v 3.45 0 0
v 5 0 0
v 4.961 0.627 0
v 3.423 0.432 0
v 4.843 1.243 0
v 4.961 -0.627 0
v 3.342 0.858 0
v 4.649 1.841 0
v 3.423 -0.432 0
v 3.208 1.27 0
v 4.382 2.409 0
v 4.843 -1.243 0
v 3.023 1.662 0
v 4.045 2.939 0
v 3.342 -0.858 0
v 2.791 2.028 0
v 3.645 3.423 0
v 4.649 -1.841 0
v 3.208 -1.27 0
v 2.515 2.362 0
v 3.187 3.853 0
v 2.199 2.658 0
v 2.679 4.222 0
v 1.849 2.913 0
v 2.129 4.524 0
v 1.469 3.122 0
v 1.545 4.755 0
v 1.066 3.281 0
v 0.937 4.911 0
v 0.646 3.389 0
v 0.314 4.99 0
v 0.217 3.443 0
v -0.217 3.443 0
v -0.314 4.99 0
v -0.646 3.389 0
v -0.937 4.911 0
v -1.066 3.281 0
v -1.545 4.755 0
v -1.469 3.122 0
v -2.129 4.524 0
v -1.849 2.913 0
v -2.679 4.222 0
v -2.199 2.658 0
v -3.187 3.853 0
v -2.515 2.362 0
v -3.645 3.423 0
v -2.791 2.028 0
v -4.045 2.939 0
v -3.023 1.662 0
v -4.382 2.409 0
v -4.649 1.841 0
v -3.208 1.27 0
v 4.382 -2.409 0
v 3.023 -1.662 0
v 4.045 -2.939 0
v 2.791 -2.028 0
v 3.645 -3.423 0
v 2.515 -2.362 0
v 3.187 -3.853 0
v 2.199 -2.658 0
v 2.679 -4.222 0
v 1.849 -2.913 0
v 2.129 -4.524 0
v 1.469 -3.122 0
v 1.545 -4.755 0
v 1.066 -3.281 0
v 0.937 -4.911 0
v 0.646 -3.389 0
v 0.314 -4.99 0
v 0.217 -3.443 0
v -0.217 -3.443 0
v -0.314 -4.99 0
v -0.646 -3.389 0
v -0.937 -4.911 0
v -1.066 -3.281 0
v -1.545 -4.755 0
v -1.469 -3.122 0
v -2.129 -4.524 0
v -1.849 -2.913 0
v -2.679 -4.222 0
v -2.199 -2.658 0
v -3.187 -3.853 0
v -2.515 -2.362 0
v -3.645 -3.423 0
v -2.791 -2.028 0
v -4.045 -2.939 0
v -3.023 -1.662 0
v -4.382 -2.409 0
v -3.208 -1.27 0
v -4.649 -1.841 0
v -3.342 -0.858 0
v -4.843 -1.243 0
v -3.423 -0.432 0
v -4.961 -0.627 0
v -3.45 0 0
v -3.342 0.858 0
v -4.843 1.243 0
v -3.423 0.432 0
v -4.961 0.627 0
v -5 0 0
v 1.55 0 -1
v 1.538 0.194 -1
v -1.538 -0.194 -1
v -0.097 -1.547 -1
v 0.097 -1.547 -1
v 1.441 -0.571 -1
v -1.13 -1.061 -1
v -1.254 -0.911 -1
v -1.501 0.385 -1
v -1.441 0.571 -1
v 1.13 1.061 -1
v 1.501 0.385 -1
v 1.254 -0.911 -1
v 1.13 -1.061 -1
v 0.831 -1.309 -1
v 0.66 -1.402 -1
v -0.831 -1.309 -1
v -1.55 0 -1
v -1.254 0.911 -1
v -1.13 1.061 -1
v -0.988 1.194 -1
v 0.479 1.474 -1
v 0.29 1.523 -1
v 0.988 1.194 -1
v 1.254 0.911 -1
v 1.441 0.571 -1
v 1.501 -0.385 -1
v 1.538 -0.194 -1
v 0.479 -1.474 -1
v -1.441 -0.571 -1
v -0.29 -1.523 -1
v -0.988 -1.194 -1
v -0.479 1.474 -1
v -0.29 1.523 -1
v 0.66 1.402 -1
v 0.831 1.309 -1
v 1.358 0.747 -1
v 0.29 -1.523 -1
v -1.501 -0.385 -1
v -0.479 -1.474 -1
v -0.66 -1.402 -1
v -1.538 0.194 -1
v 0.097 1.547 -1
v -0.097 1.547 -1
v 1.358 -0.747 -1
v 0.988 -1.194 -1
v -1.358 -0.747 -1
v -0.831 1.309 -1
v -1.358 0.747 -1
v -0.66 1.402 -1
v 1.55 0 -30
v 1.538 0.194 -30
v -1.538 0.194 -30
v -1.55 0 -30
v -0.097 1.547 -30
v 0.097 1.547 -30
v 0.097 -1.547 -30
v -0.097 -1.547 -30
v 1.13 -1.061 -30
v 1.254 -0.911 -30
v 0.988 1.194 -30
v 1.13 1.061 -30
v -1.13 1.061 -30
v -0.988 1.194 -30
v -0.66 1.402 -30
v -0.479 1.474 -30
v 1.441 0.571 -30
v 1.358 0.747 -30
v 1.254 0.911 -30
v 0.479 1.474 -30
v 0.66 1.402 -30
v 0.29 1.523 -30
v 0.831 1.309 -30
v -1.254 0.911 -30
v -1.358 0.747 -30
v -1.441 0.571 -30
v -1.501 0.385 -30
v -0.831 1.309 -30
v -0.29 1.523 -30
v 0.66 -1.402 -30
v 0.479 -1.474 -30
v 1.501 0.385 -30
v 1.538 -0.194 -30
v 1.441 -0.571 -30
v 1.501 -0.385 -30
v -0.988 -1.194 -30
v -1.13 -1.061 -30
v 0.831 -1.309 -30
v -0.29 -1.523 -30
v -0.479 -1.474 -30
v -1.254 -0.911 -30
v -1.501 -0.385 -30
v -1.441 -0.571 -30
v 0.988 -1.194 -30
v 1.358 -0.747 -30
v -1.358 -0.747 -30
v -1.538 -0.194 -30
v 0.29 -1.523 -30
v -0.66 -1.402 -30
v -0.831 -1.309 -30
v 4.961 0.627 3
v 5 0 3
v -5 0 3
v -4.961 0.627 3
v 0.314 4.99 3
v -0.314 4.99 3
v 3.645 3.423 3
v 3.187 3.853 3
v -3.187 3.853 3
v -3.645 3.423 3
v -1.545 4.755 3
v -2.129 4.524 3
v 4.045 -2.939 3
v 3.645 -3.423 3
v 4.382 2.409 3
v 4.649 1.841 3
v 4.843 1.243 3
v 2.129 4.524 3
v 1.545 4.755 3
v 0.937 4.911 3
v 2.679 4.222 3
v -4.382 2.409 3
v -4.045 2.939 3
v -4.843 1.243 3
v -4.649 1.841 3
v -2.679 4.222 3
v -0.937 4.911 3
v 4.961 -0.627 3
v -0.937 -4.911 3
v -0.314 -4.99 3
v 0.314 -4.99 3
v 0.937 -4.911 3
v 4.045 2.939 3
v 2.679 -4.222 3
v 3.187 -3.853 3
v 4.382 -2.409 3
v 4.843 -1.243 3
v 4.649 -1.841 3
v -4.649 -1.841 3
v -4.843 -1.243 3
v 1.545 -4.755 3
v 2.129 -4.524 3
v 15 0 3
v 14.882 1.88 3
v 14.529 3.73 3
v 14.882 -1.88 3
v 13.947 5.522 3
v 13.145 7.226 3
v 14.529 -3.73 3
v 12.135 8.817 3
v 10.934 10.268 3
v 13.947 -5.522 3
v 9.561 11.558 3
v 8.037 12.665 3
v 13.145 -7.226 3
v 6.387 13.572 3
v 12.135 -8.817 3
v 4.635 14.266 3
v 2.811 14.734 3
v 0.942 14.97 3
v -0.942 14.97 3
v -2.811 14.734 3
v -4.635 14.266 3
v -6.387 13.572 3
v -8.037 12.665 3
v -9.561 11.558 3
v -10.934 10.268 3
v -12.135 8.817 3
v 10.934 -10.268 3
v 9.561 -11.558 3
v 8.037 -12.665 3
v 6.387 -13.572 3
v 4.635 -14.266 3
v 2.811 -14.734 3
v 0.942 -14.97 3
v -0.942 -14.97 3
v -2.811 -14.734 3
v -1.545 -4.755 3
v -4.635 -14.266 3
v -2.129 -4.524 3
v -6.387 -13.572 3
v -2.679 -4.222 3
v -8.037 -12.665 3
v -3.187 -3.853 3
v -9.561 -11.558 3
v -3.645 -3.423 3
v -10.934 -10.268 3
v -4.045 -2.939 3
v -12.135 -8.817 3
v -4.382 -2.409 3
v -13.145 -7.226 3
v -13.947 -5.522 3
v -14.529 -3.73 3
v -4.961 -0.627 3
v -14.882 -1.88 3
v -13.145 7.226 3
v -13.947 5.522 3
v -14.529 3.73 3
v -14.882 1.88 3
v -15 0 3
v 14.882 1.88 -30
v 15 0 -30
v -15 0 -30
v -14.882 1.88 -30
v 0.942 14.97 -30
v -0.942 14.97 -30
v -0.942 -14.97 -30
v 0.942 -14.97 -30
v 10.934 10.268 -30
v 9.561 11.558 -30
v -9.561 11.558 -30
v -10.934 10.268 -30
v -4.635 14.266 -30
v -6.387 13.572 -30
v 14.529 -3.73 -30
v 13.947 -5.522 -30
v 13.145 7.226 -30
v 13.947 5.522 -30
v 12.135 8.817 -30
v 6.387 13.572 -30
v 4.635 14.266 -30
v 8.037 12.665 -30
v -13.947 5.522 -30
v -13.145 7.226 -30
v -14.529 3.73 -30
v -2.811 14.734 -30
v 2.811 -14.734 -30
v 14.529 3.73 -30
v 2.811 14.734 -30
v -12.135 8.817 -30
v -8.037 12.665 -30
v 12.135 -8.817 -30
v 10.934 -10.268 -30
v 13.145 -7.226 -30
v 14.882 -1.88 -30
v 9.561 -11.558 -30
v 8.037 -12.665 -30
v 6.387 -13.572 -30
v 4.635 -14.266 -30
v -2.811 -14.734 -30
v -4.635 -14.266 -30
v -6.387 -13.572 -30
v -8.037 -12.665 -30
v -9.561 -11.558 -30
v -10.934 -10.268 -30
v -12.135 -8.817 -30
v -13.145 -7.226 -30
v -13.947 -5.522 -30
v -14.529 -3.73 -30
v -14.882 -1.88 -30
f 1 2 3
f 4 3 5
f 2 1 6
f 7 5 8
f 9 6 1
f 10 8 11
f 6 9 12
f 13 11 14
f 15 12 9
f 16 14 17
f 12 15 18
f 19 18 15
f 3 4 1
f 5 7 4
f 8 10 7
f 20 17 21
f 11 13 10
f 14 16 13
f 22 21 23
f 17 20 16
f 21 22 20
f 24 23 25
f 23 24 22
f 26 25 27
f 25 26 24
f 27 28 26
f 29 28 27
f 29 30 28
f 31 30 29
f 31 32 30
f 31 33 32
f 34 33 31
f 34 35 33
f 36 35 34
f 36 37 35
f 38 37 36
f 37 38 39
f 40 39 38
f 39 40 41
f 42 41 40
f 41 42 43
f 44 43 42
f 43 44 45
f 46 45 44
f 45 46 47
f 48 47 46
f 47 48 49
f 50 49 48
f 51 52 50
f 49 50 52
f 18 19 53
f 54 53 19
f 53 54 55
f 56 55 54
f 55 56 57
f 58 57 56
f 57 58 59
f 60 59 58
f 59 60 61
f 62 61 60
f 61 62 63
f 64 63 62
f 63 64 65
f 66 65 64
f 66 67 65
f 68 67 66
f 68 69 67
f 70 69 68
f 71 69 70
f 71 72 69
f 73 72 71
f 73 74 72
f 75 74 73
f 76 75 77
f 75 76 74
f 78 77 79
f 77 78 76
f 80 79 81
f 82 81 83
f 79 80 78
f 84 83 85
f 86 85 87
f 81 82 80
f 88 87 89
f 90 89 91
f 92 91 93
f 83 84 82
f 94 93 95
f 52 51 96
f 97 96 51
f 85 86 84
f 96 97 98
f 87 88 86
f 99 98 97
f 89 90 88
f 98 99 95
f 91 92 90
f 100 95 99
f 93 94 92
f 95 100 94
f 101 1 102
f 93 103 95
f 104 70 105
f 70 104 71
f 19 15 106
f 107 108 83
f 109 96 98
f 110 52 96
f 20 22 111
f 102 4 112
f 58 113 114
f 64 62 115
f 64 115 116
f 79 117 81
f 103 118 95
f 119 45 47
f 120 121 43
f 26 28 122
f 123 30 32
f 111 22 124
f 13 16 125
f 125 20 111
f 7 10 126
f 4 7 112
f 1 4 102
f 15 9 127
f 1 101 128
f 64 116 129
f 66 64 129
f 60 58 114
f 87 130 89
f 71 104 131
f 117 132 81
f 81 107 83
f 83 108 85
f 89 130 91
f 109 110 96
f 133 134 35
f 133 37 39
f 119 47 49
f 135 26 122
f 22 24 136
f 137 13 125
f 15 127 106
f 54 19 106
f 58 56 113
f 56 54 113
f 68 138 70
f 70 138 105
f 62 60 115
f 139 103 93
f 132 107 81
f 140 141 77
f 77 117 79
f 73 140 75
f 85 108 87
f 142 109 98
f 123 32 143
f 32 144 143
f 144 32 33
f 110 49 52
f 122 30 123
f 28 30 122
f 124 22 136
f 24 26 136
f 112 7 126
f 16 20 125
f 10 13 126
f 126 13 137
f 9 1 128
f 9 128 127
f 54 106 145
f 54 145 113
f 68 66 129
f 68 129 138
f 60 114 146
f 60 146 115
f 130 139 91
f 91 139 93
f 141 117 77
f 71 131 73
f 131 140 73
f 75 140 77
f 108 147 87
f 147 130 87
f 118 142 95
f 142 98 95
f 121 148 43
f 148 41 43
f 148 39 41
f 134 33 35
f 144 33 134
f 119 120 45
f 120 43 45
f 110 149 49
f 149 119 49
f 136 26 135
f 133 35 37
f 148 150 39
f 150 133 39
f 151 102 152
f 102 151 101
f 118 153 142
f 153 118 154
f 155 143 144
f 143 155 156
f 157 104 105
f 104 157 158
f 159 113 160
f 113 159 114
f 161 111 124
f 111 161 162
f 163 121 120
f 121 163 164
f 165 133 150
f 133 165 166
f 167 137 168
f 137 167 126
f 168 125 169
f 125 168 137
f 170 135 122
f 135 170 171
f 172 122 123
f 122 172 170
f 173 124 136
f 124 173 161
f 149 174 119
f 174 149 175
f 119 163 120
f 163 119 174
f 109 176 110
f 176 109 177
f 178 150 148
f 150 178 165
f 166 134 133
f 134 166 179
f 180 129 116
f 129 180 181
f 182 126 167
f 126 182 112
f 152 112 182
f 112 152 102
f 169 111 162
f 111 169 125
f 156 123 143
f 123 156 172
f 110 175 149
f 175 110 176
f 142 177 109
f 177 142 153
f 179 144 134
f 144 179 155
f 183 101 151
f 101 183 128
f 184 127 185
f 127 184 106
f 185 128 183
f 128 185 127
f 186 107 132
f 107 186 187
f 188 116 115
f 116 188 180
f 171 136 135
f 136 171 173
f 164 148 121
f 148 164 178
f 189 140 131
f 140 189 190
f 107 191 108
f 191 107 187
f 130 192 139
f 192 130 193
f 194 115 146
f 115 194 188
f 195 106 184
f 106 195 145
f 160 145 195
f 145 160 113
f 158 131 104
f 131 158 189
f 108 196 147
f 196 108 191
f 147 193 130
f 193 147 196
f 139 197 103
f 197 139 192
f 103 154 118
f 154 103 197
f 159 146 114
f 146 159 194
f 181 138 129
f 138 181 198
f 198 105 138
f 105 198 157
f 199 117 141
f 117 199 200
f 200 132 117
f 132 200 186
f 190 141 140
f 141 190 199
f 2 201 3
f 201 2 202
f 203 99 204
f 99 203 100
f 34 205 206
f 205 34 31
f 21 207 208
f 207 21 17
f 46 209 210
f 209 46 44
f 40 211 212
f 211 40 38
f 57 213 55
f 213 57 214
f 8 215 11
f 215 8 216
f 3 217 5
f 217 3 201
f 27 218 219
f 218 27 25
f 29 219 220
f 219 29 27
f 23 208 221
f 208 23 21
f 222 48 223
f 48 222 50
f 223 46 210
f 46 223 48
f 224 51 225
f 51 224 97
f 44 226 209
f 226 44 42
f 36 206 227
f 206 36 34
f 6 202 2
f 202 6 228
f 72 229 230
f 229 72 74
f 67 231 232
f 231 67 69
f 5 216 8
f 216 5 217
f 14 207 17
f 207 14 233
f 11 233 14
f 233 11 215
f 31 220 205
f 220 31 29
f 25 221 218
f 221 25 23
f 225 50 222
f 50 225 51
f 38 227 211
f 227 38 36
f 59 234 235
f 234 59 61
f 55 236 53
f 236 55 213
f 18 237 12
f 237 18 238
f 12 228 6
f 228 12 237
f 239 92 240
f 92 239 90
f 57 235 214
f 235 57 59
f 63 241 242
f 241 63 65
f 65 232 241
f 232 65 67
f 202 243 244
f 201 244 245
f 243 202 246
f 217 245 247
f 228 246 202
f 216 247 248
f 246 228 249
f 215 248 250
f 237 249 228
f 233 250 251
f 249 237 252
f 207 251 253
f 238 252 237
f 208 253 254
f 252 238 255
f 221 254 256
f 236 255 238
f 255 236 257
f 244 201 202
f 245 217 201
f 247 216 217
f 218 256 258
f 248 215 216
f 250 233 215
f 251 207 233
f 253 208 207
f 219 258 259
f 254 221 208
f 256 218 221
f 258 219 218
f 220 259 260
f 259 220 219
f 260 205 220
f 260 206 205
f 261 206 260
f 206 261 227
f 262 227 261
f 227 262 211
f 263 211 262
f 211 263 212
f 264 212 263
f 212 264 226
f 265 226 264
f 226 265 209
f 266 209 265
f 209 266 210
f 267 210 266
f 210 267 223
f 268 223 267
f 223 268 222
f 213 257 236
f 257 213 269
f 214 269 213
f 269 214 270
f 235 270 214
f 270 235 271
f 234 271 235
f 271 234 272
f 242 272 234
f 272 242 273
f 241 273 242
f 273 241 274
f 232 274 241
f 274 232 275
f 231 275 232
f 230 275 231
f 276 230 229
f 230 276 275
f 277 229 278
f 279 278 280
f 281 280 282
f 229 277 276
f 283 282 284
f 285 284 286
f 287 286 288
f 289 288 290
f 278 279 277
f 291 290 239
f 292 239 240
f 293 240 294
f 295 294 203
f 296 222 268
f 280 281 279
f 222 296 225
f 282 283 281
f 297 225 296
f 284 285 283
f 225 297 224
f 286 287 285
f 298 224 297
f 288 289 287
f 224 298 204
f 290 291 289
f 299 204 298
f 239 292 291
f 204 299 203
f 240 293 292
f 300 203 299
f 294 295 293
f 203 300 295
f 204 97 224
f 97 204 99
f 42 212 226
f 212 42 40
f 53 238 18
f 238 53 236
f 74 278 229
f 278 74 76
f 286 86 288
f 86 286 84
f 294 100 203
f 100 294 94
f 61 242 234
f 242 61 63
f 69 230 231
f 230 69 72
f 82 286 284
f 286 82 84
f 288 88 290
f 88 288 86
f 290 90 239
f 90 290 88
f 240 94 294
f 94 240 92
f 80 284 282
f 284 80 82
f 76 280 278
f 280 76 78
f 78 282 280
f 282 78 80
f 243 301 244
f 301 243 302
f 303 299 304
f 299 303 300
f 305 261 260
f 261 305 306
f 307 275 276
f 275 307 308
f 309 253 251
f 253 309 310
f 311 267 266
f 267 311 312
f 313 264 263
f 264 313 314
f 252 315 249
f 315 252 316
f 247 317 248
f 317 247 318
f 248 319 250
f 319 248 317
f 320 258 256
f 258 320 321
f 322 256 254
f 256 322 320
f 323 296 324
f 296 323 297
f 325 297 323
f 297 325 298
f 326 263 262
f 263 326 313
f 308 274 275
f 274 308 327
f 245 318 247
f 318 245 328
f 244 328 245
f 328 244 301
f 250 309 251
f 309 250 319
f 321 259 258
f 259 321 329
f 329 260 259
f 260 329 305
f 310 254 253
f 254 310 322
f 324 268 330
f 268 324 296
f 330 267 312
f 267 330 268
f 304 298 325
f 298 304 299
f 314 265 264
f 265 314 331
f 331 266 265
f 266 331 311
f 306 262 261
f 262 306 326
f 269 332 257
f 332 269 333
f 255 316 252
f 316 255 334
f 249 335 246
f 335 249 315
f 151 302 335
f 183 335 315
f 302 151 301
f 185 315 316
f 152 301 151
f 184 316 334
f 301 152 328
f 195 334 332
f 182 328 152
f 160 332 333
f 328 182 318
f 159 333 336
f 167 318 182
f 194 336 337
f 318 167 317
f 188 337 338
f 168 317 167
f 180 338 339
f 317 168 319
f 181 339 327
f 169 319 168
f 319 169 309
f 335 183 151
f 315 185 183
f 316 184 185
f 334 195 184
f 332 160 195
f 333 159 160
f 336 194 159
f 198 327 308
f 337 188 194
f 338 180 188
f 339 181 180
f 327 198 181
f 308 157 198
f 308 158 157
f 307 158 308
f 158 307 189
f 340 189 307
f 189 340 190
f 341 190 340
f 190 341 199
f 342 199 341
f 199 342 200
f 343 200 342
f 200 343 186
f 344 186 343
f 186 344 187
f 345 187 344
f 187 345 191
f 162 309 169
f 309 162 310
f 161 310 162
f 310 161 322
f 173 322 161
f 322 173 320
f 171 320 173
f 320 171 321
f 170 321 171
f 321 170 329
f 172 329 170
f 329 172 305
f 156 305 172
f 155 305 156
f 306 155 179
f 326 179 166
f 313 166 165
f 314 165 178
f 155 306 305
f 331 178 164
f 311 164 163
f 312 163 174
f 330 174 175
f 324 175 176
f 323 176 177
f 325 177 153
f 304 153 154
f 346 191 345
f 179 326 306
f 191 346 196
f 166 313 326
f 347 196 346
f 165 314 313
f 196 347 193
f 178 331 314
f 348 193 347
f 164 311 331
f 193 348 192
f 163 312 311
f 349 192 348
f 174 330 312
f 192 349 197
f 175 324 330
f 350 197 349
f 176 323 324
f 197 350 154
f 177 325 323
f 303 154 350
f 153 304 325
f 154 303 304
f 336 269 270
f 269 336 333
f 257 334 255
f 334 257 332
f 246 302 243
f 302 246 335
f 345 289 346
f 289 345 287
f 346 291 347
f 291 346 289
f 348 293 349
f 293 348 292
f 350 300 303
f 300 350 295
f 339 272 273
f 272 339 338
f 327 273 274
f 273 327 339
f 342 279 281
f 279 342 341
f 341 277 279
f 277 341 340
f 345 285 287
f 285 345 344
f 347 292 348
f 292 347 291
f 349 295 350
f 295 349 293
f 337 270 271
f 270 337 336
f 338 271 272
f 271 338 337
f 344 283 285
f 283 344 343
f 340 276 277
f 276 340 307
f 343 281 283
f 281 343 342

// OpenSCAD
$fn = 50;

difference() {
	union() {
		translate(v = [0, 0, -30.0]) {
			cylinder(h = 33, r = 15.0);
		}
	}
	union() {
		translate(v = [0, 0, 0]) {
			rotate(a = [0, 0, 0]) {
				difference() {
					union() {
						translate(v = [0, 0, -33.0]) {
							cylinder(h = 33, r = 1.25);
						}
						translate(v = [0, 0, -1.0]) {
							cylinder(h = 1.0, r1 = 1.55, r2 = 3.45);
						}
						translate(v = [0, 0, -33.0]) {
							cylinder(h = 33, r = 1.55);
						}
						translate(v = [0, 0, -33.0]) {
							cylinder(h = 33, r = 1.25);
						}
					}
					union();
				}
			}
		}
		#cylinder(h = 3, r = 5.0);
	}
}
